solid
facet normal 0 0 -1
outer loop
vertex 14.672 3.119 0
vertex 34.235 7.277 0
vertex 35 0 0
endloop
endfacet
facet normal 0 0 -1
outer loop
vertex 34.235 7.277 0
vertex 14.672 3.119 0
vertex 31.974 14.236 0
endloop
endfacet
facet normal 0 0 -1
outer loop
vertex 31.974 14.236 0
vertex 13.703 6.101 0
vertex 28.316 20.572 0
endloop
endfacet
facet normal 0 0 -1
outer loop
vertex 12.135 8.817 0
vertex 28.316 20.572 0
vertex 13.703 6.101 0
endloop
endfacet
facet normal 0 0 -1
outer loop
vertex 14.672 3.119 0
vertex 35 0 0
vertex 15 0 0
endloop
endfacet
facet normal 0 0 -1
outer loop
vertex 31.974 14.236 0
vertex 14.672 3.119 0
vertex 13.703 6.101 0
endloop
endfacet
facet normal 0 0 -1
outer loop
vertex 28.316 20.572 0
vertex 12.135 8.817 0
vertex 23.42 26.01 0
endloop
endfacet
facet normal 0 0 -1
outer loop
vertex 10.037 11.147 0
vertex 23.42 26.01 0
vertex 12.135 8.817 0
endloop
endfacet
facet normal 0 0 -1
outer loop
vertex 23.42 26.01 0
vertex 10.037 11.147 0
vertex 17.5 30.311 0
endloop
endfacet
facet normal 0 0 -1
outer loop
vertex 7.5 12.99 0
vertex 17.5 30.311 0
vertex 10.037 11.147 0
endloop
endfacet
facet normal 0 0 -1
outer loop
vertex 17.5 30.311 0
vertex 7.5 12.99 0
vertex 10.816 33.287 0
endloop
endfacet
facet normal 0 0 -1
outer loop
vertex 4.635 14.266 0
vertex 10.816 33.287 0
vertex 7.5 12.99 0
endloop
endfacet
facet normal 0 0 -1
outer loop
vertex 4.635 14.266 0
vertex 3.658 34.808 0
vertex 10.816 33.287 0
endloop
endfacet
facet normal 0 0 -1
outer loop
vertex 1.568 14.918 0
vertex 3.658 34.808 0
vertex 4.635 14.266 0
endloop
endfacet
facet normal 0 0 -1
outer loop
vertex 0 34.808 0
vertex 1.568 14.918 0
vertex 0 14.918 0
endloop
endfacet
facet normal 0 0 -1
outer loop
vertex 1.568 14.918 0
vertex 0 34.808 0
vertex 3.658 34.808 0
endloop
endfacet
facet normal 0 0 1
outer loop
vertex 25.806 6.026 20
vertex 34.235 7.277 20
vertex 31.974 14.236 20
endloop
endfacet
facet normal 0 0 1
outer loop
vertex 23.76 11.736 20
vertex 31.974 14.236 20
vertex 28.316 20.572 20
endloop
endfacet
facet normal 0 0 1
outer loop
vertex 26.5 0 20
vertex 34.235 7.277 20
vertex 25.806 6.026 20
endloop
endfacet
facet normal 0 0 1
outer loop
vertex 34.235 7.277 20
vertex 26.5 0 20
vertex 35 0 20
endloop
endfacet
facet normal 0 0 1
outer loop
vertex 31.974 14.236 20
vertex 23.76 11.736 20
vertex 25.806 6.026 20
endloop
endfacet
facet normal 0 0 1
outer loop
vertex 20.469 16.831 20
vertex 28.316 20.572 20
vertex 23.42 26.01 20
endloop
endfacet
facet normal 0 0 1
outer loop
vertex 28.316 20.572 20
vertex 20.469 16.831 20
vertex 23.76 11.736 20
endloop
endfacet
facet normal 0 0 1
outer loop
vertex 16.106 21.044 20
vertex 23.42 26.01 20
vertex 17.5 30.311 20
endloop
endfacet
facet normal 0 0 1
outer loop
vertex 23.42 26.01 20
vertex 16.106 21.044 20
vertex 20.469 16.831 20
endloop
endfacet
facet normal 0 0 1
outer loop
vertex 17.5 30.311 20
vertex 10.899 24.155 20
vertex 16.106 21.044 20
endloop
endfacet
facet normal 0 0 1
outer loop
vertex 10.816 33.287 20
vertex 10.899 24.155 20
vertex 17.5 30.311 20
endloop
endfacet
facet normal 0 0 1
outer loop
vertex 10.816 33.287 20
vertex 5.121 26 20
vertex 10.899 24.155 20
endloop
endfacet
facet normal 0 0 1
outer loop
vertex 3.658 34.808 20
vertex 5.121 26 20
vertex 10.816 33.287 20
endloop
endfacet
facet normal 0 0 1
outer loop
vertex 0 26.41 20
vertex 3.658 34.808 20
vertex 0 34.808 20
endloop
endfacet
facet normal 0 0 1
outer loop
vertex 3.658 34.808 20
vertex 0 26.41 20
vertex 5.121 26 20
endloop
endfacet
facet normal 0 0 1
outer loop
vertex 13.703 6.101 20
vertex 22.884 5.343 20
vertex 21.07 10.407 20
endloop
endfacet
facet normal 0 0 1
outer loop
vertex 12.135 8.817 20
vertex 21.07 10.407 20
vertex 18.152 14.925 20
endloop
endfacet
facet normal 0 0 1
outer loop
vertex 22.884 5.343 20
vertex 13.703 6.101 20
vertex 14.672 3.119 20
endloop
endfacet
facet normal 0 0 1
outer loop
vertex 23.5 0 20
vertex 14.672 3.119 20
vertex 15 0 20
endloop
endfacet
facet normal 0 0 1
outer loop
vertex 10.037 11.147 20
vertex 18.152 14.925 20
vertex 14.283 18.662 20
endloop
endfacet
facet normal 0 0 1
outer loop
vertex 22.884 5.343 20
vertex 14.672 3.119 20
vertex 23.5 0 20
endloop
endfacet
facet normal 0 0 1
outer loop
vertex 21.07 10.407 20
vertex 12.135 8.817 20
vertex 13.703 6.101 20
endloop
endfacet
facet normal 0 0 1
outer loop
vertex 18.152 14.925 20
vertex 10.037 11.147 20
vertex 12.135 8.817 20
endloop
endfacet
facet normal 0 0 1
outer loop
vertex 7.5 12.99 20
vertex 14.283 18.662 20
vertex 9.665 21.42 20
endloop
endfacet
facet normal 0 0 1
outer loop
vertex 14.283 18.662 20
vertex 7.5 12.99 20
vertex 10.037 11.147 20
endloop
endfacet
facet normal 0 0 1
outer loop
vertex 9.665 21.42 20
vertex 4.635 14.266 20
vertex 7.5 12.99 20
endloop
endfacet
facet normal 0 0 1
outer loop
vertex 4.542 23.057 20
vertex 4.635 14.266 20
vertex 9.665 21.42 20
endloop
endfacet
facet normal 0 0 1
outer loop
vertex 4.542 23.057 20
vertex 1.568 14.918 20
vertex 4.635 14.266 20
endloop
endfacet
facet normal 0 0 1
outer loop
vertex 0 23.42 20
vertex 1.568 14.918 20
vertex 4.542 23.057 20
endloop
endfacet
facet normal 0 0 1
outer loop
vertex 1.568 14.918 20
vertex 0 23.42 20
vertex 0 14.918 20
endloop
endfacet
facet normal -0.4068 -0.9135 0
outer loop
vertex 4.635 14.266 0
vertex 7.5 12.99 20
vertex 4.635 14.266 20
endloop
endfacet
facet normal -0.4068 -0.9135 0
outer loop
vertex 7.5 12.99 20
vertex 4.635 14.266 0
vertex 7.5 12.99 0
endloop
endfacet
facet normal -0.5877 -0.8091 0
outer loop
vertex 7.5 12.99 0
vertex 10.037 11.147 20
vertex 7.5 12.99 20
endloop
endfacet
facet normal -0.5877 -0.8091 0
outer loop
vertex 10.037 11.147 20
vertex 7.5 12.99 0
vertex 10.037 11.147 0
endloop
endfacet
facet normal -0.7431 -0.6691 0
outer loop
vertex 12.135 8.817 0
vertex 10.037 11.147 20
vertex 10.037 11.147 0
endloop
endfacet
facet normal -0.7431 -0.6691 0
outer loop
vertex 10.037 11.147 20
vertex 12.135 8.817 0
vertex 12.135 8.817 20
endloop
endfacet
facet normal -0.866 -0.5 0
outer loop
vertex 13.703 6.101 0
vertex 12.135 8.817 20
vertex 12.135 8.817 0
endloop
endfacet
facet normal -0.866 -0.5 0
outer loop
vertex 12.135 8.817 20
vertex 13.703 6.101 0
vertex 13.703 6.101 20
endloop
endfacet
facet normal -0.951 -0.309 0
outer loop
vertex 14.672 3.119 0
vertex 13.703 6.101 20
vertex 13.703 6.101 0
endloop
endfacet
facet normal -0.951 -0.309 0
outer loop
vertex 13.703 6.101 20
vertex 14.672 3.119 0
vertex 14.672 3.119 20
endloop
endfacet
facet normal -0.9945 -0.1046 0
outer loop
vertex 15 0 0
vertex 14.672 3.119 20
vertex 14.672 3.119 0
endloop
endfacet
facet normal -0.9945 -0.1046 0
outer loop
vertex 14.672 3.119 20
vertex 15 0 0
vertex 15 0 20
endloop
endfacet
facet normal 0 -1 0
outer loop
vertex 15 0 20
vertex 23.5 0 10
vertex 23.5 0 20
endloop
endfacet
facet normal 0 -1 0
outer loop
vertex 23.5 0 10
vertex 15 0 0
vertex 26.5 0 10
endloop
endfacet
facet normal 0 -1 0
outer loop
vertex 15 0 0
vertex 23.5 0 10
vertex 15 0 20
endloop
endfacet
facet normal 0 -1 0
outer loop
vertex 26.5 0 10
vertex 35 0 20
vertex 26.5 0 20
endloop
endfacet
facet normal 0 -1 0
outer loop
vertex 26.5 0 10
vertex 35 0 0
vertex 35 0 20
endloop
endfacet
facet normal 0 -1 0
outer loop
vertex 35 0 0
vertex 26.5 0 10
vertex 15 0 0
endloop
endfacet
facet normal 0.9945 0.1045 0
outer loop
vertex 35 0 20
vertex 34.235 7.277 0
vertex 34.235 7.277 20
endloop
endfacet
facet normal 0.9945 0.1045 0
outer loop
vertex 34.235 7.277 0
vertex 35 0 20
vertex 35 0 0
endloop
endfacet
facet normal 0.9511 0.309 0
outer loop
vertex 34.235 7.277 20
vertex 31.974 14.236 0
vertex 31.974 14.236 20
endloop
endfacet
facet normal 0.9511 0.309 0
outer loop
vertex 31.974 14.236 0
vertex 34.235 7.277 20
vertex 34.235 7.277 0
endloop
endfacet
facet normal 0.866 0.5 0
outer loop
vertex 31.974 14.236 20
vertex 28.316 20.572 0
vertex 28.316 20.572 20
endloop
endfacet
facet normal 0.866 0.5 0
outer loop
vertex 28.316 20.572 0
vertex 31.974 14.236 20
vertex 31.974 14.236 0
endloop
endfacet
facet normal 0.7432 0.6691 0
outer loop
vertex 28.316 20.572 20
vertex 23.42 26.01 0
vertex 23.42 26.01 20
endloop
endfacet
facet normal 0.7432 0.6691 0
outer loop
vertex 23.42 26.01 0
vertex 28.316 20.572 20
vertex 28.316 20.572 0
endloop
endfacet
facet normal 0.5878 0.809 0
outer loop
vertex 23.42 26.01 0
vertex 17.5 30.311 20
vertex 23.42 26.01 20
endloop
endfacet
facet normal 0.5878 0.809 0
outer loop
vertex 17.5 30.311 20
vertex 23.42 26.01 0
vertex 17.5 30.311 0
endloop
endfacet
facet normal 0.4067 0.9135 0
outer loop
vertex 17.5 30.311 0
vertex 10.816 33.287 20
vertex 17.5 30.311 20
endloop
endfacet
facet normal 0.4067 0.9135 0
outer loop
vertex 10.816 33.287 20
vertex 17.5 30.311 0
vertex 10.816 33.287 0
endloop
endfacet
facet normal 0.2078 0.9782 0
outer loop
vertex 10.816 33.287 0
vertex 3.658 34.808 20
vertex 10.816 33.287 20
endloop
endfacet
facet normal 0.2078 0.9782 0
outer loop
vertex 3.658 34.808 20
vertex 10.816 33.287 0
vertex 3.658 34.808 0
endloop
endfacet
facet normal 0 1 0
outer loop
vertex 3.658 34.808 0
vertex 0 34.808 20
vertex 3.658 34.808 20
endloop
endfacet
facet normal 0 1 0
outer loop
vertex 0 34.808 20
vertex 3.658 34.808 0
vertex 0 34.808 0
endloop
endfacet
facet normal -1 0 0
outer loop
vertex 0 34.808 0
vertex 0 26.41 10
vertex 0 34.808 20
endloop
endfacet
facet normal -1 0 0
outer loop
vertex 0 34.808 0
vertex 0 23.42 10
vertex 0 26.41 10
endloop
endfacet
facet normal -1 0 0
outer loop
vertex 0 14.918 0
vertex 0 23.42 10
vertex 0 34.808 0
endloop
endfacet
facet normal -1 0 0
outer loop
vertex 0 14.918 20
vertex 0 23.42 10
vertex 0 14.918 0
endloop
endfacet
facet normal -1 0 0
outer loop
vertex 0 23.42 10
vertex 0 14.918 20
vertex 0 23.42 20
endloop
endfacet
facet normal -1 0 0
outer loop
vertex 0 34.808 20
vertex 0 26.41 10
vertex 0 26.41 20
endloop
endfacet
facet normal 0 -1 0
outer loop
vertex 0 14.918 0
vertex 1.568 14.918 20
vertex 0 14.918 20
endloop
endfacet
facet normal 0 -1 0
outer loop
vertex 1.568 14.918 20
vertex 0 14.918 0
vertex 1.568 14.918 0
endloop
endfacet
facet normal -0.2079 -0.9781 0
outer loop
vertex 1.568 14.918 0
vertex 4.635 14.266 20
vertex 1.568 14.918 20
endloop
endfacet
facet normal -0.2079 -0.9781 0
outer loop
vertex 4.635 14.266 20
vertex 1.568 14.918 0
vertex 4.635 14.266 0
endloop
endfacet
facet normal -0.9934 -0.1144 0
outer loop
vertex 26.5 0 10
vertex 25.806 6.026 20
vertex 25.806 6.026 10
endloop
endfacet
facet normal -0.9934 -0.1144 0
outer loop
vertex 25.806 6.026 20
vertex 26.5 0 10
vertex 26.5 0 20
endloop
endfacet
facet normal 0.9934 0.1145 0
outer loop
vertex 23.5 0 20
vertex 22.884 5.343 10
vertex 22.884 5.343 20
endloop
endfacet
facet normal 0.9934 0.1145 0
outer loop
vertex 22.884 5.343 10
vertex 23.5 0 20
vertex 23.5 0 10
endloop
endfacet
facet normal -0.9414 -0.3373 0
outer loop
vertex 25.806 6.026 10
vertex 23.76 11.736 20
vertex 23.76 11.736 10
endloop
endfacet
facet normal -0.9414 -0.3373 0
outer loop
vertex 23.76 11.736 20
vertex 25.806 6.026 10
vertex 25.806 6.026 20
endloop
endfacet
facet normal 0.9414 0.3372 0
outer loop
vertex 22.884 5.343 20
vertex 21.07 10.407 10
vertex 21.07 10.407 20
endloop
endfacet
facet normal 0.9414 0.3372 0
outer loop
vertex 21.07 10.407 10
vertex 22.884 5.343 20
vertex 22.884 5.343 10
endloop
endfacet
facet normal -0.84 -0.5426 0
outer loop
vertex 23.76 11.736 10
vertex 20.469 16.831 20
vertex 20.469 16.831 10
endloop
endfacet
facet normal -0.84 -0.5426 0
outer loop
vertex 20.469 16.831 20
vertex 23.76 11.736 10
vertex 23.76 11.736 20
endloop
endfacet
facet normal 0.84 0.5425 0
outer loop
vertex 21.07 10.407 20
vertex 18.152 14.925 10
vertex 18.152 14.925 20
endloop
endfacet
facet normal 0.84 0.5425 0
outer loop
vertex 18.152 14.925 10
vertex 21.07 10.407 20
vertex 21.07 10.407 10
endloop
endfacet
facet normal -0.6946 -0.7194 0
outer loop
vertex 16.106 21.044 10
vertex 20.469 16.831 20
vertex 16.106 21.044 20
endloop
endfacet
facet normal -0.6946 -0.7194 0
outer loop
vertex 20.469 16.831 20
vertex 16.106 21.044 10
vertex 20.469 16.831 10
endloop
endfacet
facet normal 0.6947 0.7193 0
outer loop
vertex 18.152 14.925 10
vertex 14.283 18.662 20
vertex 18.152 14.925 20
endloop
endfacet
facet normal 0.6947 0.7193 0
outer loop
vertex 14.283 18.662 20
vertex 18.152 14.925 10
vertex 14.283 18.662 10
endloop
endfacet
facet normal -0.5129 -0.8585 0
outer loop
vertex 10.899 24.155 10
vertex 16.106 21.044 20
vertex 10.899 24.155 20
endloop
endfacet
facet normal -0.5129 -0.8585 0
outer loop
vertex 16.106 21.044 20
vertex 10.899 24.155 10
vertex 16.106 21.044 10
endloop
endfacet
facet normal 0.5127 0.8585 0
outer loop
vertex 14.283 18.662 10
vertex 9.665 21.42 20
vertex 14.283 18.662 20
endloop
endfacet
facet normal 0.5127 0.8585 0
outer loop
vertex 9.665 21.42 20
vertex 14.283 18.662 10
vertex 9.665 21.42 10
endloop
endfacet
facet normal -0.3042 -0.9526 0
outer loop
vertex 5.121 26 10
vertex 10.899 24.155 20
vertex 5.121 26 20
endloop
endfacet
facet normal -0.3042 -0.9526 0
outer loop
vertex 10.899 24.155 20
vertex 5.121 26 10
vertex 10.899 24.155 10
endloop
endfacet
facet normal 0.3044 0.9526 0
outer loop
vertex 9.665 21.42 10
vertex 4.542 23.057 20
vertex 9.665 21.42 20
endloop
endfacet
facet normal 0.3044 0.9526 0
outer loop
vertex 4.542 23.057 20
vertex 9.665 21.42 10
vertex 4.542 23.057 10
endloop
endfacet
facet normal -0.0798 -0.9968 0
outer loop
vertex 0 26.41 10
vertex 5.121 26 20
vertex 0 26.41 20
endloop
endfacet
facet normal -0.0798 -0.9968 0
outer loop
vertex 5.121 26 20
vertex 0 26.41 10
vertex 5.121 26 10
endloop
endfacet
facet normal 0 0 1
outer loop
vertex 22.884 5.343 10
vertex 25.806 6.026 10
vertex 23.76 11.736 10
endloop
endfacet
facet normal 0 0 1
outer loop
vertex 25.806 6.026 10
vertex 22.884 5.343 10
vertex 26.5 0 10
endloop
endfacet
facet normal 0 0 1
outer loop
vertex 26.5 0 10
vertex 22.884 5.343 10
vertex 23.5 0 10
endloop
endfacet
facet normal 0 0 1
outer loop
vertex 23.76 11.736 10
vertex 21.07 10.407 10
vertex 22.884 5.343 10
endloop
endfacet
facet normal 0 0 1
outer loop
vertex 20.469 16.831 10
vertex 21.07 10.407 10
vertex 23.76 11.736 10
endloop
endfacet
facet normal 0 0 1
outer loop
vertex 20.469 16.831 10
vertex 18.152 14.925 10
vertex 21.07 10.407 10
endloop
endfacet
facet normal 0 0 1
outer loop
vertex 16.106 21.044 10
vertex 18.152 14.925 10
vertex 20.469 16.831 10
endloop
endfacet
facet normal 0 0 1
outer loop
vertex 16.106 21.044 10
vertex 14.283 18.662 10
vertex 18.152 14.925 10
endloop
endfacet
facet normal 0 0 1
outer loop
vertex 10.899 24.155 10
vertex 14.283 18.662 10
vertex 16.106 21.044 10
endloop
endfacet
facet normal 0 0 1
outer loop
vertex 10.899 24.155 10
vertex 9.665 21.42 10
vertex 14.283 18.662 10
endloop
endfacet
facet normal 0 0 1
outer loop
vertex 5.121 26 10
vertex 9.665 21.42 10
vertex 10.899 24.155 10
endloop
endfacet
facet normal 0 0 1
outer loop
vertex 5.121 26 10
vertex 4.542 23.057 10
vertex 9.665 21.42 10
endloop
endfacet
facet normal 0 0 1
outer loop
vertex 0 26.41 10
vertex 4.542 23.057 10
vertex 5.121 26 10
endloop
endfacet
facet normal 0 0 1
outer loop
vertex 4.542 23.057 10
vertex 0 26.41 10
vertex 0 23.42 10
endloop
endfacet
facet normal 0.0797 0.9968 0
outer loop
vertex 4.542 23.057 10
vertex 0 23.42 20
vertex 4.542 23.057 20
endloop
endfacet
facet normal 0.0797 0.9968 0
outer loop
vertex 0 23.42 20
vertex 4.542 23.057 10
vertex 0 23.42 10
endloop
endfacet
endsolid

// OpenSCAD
// Corner + slot test — flat quarter-ring with groove
corner_r = 35;
bar_r    = 10;
slot_w   = 3;
slot_d   = 10;

path_r = corner_r - bar_r;
h      = bar_r * 2;
thick  = bar_r * 2;  // radial wall thickness

difference() {
    // Flat quarter-ring
    linear_extrude(h)
        difference() {
            intersection() { circle(r = corner_r);        square(corner_r + 1); }
            intersection() { circle(r = corner_r - thick); square(corner_r + 1); }
        }

    // Groove from top, running along the arc
    rotate_extrude(angle = 92)
        translate([path_r - slot_w / 2, h - slot_d])
            square([slot_w, slot_d + 1]);
}
